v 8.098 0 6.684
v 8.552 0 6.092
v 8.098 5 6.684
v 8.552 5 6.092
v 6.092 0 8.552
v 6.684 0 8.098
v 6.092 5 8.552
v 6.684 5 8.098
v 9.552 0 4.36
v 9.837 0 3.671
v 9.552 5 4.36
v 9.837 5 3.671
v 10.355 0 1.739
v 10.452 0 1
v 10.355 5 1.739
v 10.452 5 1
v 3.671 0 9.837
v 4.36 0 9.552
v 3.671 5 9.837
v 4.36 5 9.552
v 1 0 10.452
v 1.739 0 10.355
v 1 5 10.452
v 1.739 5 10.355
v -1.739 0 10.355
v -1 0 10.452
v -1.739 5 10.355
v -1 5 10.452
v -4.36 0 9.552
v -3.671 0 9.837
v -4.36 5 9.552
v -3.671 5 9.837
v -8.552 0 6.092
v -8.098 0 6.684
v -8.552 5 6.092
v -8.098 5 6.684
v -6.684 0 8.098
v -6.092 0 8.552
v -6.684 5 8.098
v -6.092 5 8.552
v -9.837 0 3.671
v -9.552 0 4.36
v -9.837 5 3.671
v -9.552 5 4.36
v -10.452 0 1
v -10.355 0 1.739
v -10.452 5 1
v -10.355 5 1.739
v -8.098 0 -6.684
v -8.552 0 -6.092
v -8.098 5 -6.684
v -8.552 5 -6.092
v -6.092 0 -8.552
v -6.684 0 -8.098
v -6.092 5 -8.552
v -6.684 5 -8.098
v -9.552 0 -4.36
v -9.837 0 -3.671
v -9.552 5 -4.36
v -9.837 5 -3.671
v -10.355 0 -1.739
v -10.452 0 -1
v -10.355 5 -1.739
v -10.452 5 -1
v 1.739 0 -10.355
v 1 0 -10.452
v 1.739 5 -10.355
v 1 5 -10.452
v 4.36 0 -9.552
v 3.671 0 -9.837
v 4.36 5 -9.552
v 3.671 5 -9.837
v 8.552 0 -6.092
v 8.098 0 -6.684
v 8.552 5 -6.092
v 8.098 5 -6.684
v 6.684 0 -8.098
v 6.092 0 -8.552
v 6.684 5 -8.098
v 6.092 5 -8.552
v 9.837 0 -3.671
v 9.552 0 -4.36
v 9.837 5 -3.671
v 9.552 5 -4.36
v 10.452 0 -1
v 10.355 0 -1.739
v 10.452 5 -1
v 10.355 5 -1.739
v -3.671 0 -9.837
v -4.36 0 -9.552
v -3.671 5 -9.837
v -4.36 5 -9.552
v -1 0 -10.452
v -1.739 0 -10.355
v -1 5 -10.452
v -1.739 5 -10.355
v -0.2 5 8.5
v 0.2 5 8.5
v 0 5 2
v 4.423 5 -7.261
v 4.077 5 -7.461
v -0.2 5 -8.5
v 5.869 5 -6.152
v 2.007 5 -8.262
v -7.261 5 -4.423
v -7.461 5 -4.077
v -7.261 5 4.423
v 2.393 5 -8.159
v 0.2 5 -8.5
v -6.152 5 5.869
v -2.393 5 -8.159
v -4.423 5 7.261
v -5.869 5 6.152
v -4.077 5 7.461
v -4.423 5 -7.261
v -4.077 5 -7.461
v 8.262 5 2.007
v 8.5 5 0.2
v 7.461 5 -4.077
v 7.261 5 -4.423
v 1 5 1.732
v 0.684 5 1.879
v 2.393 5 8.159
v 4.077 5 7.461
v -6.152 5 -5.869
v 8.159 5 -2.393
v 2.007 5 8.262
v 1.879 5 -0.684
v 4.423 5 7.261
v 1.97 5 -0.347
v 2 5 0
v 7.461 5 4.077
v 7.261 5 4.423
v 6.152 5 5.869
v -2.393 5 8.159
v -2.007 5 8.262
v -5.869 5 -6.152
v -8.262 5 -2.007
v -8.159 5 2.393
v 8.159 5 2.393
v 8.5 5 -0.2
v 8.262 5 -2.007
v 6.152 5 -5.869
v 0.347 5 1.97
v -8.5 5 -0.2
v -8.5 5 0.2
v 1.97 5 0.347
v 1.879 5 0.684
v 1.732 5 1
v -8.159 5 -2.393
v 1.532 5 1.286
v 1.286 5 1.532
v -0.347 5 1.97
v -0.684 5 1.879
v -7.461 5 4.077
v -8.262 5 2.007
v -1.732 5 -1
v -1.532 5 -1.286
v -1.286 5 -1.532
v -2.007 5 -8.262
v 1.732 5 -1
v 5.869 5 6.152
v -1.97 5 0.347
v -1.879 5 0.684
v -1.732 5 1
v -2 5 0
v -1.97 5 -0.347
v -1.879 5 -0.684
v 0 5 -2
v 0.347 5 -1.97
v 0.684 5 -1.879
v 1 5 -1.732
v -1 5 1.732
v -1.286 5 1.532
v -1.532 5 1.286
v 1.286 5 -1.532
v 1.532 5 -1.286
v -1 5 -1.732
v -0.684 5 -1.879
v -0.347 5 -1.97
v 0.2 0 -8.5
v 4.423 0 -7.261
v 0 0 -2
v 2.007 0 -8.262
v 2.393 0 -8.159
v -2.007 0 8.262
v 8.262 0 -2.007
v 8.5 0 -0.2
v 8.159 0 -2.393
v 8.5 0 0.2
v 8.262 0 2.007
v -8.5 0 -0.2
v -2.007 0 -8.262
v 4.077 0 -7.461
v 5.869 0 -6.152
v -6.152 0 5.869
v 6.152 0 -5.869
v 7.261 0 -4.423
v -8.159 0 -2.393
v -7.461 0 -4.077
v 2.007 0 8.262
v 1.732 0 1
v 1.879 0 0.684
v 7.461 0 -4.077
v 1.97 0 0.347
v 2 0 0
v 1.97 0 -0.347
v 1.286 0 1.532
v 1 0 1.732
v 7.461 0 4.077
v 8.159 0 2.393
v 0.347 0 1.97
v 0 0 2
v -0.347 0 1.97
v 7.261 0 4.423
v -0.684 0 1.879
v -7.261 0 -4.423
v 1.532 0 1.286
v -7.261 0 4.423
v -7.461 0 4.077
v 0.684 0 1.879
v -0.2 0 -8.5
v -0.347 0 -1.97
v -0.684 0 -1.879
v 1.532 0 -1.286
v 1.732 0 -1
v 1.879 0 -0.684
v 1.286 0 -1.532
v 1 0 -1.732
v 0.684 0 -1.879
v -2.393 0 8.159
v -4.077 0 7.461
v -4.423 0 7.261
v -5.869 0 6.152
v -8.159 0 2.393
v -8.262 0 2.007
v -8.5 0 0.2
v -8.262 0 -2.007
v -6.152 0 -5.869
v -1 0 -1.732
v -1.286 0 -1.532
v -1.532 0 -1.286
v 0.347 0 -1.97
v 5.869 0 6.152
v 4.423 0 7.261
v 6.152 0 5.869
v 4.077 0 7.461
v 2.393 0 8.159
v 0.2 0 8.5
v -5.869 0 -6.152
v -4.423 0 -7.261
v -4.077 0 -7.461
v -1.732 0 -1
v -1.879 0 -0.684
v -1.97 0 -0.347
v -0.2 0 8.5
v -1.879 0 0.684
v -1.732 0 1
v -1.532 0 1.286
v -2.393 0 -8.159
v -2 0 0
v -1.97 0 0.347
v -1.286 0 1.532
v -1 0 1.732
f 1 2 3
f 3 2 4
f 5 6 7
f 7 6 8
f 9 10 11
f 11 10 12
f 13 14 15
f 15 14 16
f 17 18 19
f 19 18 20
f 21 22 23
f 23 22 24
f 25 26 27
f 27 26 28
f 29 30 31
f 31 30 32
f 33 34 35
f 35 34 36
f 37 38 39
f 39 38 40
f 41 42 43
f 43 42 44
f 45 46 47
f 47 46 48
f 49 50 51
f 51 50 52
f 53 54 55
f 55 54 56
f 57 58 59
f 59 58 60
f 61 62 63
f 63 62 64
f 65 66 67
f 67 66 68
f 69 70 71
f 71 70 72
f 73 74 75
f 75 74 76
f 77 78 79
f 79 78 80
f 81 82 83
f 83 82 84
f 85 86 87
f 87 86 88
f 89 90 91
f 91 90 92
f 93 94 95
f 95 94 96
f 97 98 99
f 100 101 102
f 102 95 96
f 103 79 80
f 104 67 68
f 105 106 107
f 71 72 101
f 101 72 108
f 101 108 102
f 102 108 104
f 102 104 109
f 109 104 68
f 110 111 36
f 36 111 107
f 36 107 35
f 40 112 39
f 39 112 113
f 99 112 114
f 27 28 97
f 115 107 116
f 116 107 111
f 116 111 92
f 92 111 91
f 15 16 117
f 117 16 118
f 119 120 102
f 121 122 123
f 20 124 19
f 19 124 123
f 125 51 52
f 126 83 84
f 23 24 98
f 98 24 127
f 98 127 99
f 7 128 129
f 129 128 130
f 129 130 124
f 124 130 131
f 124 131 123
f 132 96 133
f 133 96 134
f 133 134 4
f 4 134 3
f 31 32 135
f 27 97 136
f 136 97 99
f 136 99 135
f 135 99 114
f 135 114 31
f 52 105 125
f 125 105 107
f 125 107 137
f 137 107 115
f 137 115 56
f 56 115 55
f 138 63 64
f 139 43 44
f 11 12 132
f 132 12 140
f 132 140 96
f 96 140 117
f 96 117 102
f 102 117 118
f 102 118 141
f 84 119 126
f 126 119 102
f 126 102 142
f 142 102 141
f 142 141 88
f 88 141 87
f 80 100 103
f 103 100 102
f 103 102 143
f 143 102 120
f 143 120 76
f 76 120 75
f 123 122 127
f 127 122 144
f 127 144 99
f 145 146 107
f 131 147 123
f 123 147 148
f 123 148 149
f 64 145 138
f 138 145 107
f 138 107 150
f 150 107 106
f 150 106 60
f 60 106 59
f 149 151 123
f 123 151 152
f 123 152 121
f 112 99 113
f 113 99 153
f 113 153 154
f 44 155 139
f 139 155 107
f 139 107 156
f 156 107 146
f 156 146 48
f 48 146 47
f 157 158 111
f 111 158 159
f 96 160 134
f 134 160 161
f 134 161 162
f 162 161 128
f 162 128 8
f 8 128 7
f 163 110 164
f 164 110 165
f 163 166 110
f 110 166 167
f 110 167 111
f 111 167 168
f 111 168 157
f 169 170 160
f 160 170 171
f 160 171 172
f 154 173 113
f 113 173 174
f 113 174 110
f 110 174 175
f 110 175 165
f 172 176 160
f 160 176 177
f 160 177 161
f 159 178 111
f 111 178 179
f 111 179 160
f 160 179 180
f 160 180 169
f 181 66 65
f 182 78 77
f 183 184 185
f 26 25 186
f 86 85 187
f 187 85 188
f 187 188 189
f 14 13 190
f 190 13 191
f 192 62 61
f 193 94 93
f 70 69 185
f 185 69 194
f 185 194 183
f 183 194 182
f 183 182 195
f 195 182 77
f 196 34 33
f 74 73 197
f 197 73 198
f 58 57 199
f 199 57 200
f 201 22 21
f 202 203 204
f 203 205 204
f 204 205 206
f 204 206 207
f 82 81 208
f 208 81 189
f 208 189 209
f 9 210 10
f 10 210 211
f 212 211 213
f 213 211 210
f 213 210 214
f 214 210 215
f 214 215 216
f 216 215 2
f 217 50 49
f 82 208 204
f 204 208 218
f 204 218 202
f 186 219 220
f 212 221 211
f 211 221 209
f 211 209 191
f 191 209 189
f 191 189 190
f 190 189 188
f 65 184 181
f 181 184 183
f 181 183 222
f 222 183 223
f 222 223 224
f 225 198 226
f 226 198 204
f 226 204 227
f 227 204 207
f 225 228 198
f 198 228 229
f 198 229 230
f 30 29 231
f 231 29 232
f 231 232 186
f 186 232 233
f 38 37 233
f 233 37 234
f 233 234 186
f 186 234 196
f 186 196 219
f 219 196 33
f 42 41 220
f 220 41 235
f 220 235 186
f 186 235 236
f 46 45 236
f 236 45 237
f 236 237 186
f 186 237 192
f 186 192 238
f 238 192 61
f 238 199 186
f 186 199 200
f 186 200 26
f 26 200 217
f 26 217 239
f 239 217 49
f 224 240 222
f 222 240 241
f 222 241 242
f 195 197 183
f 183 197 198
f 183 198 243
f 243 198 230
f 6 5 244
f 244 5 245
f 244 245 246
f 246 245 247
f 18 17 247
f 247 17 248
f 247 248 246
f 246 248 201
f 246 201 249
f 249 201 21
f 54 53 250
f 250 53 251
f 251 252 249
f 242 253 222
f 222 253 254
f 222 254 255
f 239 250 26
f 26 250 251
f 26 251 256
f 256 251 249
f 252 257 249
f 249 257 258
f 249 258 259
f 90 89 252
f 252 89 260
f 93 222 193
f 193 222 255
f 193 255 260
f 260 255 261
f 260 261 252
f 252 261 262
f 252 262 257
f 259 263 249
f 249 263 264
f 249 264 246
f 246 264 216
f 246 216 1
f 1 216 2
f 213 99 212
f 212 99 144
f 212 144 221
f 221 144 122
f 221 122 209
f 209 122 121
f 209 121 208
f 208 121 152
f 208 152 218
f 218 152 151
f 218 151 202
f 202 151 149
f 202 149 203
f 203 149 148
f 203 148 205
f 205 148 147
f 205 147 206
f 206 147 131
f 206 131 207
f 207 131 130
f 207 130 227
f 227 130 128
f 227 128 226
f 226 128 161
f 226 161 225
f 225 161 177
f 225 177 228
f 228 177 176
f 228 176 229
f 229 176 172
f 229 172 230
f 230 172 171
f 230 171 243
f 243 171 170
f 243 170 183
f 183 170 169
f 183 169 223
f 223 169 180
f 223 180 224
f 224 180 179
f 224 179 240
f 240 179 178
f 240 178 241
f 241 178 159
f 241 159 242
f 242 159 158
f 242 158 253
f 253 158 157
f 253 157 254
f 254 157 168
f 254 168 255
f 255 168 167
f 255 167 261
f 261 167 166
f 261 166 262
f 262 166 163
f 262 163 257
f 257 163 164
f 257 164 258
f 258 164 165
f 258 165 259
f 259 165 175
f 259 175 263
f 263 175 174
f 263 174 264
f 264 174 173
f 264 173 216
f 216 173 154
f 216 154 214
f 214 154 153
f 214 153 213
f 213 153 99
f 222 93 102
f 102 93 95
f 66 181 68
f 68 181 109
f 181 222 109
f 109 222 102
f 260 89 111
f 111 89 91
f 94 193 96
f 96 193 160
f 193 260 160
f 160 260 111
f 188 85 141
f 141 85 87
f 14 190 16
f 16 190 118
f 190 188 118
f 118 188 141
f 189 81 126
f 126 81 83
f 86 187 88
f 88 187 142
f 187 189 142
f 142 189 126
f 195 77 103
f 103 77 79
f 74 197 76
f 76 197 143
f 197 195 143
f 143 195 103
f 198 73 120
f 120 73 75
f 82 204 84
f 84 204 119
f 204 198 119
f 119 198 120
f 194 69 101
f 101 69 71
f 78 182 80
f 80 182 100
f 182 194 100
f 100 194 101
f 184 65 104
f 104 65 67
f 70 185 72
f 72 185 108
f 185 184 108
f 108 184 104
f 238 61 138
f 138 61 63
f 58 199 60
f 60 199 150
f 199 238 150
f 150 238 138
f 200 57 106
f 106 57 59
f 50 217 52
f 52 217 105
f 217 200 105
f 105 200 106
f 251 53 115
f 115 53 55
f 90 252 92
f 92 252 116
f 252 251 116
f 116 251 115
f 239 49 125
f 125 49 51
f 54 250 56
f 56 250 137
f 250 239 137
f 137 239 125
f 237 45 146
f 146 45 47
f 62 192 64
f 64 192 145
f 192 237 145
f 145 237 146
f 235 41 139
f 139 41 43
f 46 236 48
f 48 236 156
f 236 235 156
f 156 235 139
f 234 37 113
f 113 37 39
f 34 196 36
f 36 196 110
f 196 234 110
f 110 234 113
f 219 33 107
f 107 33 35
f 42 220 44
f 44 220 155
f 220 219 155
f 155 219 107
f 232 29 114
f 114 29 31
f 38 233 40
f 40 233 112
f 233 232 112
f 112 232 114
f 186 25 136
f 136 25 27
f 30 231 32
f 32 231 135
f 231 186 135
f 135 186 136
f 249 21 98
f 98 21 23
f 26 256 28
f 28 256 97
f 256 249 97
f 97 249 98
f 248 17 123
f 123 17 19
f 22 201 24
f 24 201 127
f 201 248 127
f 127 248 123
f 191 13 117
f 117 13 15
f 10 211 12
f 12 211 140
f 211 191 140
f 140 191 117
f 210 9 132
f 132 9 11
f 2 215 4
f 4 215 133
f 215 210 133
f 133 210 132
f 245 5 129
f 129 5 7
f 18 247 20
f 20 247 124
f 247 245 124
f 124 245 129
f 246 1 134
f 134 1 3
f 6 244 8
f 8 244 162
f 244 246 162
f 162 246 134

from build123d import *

# Parameters (mm, degrees)
SKETCH1_R           = 10.5
BOSS_EXTRUDE1_DEPTH = 5
SKETCH2_R           = 2
CUT_EXTRUDE1_DEPTH  = 6
CUT_EXTRUDE2_DEPTH  = 5
CIRPATTERN1_COUNT   = 24


with BuildPart() as part:
    # Sketch1 → Boss-Extrude1 (new body)
    with BuildSketch(Plane(origin=(0, 0, 0), x_dir=(1, 0, 0), z_dir=(0, 1, 0))):
        Circle(SKETCH1_R)
    extrude(amount=BOSS_EXTRUDE1_DEPTH)

    # Sketch2 → Cut-Extrude1 (cut, through all)
    with BuildSketch(Plane(origin=(0, 5, 0), x_dir=(1, 0, 0), z_dir=(0, 1, 0))):
        Circle(SKETCH2_R)
    extrude(amount=-CUT_EXTRUDE1_DEPTH, mode=Mode.SUBTRACT)

    # Sketch3 → Cut-Extrude2 (cut)
    with BuildSketch(Plane(origin=(0, 5, 0), x_dir=(1, 0, 0), z_dir=(0, 1, 0))):
        Polygon((0, 8.5), (0.2, 8.5), (1, 10.45227248), (1, 11.821377403), (-1, 11.821377403), (-1, 10.45227248), (-0.2, 8.5), align=None)
    cut_extrude2 = extrude(amount=-CUT_EXTRUDE2_DEPTH, mode=Mode.SUBTRACT)

    # CirPattern1: Cut-Extrude2 ×24 about axis
    cirpattern1_axis = Axis((0, 0, 0), (0, 1, 0))
    for i in range(1, CIRPATTERN1_COUNT):
        add(cut_extrude2.rotate(cirpattern1_axis, i * 360 / CIRPATTERN1_COUNT), mode=Mode.SUBTRACT)


solid = part.part
